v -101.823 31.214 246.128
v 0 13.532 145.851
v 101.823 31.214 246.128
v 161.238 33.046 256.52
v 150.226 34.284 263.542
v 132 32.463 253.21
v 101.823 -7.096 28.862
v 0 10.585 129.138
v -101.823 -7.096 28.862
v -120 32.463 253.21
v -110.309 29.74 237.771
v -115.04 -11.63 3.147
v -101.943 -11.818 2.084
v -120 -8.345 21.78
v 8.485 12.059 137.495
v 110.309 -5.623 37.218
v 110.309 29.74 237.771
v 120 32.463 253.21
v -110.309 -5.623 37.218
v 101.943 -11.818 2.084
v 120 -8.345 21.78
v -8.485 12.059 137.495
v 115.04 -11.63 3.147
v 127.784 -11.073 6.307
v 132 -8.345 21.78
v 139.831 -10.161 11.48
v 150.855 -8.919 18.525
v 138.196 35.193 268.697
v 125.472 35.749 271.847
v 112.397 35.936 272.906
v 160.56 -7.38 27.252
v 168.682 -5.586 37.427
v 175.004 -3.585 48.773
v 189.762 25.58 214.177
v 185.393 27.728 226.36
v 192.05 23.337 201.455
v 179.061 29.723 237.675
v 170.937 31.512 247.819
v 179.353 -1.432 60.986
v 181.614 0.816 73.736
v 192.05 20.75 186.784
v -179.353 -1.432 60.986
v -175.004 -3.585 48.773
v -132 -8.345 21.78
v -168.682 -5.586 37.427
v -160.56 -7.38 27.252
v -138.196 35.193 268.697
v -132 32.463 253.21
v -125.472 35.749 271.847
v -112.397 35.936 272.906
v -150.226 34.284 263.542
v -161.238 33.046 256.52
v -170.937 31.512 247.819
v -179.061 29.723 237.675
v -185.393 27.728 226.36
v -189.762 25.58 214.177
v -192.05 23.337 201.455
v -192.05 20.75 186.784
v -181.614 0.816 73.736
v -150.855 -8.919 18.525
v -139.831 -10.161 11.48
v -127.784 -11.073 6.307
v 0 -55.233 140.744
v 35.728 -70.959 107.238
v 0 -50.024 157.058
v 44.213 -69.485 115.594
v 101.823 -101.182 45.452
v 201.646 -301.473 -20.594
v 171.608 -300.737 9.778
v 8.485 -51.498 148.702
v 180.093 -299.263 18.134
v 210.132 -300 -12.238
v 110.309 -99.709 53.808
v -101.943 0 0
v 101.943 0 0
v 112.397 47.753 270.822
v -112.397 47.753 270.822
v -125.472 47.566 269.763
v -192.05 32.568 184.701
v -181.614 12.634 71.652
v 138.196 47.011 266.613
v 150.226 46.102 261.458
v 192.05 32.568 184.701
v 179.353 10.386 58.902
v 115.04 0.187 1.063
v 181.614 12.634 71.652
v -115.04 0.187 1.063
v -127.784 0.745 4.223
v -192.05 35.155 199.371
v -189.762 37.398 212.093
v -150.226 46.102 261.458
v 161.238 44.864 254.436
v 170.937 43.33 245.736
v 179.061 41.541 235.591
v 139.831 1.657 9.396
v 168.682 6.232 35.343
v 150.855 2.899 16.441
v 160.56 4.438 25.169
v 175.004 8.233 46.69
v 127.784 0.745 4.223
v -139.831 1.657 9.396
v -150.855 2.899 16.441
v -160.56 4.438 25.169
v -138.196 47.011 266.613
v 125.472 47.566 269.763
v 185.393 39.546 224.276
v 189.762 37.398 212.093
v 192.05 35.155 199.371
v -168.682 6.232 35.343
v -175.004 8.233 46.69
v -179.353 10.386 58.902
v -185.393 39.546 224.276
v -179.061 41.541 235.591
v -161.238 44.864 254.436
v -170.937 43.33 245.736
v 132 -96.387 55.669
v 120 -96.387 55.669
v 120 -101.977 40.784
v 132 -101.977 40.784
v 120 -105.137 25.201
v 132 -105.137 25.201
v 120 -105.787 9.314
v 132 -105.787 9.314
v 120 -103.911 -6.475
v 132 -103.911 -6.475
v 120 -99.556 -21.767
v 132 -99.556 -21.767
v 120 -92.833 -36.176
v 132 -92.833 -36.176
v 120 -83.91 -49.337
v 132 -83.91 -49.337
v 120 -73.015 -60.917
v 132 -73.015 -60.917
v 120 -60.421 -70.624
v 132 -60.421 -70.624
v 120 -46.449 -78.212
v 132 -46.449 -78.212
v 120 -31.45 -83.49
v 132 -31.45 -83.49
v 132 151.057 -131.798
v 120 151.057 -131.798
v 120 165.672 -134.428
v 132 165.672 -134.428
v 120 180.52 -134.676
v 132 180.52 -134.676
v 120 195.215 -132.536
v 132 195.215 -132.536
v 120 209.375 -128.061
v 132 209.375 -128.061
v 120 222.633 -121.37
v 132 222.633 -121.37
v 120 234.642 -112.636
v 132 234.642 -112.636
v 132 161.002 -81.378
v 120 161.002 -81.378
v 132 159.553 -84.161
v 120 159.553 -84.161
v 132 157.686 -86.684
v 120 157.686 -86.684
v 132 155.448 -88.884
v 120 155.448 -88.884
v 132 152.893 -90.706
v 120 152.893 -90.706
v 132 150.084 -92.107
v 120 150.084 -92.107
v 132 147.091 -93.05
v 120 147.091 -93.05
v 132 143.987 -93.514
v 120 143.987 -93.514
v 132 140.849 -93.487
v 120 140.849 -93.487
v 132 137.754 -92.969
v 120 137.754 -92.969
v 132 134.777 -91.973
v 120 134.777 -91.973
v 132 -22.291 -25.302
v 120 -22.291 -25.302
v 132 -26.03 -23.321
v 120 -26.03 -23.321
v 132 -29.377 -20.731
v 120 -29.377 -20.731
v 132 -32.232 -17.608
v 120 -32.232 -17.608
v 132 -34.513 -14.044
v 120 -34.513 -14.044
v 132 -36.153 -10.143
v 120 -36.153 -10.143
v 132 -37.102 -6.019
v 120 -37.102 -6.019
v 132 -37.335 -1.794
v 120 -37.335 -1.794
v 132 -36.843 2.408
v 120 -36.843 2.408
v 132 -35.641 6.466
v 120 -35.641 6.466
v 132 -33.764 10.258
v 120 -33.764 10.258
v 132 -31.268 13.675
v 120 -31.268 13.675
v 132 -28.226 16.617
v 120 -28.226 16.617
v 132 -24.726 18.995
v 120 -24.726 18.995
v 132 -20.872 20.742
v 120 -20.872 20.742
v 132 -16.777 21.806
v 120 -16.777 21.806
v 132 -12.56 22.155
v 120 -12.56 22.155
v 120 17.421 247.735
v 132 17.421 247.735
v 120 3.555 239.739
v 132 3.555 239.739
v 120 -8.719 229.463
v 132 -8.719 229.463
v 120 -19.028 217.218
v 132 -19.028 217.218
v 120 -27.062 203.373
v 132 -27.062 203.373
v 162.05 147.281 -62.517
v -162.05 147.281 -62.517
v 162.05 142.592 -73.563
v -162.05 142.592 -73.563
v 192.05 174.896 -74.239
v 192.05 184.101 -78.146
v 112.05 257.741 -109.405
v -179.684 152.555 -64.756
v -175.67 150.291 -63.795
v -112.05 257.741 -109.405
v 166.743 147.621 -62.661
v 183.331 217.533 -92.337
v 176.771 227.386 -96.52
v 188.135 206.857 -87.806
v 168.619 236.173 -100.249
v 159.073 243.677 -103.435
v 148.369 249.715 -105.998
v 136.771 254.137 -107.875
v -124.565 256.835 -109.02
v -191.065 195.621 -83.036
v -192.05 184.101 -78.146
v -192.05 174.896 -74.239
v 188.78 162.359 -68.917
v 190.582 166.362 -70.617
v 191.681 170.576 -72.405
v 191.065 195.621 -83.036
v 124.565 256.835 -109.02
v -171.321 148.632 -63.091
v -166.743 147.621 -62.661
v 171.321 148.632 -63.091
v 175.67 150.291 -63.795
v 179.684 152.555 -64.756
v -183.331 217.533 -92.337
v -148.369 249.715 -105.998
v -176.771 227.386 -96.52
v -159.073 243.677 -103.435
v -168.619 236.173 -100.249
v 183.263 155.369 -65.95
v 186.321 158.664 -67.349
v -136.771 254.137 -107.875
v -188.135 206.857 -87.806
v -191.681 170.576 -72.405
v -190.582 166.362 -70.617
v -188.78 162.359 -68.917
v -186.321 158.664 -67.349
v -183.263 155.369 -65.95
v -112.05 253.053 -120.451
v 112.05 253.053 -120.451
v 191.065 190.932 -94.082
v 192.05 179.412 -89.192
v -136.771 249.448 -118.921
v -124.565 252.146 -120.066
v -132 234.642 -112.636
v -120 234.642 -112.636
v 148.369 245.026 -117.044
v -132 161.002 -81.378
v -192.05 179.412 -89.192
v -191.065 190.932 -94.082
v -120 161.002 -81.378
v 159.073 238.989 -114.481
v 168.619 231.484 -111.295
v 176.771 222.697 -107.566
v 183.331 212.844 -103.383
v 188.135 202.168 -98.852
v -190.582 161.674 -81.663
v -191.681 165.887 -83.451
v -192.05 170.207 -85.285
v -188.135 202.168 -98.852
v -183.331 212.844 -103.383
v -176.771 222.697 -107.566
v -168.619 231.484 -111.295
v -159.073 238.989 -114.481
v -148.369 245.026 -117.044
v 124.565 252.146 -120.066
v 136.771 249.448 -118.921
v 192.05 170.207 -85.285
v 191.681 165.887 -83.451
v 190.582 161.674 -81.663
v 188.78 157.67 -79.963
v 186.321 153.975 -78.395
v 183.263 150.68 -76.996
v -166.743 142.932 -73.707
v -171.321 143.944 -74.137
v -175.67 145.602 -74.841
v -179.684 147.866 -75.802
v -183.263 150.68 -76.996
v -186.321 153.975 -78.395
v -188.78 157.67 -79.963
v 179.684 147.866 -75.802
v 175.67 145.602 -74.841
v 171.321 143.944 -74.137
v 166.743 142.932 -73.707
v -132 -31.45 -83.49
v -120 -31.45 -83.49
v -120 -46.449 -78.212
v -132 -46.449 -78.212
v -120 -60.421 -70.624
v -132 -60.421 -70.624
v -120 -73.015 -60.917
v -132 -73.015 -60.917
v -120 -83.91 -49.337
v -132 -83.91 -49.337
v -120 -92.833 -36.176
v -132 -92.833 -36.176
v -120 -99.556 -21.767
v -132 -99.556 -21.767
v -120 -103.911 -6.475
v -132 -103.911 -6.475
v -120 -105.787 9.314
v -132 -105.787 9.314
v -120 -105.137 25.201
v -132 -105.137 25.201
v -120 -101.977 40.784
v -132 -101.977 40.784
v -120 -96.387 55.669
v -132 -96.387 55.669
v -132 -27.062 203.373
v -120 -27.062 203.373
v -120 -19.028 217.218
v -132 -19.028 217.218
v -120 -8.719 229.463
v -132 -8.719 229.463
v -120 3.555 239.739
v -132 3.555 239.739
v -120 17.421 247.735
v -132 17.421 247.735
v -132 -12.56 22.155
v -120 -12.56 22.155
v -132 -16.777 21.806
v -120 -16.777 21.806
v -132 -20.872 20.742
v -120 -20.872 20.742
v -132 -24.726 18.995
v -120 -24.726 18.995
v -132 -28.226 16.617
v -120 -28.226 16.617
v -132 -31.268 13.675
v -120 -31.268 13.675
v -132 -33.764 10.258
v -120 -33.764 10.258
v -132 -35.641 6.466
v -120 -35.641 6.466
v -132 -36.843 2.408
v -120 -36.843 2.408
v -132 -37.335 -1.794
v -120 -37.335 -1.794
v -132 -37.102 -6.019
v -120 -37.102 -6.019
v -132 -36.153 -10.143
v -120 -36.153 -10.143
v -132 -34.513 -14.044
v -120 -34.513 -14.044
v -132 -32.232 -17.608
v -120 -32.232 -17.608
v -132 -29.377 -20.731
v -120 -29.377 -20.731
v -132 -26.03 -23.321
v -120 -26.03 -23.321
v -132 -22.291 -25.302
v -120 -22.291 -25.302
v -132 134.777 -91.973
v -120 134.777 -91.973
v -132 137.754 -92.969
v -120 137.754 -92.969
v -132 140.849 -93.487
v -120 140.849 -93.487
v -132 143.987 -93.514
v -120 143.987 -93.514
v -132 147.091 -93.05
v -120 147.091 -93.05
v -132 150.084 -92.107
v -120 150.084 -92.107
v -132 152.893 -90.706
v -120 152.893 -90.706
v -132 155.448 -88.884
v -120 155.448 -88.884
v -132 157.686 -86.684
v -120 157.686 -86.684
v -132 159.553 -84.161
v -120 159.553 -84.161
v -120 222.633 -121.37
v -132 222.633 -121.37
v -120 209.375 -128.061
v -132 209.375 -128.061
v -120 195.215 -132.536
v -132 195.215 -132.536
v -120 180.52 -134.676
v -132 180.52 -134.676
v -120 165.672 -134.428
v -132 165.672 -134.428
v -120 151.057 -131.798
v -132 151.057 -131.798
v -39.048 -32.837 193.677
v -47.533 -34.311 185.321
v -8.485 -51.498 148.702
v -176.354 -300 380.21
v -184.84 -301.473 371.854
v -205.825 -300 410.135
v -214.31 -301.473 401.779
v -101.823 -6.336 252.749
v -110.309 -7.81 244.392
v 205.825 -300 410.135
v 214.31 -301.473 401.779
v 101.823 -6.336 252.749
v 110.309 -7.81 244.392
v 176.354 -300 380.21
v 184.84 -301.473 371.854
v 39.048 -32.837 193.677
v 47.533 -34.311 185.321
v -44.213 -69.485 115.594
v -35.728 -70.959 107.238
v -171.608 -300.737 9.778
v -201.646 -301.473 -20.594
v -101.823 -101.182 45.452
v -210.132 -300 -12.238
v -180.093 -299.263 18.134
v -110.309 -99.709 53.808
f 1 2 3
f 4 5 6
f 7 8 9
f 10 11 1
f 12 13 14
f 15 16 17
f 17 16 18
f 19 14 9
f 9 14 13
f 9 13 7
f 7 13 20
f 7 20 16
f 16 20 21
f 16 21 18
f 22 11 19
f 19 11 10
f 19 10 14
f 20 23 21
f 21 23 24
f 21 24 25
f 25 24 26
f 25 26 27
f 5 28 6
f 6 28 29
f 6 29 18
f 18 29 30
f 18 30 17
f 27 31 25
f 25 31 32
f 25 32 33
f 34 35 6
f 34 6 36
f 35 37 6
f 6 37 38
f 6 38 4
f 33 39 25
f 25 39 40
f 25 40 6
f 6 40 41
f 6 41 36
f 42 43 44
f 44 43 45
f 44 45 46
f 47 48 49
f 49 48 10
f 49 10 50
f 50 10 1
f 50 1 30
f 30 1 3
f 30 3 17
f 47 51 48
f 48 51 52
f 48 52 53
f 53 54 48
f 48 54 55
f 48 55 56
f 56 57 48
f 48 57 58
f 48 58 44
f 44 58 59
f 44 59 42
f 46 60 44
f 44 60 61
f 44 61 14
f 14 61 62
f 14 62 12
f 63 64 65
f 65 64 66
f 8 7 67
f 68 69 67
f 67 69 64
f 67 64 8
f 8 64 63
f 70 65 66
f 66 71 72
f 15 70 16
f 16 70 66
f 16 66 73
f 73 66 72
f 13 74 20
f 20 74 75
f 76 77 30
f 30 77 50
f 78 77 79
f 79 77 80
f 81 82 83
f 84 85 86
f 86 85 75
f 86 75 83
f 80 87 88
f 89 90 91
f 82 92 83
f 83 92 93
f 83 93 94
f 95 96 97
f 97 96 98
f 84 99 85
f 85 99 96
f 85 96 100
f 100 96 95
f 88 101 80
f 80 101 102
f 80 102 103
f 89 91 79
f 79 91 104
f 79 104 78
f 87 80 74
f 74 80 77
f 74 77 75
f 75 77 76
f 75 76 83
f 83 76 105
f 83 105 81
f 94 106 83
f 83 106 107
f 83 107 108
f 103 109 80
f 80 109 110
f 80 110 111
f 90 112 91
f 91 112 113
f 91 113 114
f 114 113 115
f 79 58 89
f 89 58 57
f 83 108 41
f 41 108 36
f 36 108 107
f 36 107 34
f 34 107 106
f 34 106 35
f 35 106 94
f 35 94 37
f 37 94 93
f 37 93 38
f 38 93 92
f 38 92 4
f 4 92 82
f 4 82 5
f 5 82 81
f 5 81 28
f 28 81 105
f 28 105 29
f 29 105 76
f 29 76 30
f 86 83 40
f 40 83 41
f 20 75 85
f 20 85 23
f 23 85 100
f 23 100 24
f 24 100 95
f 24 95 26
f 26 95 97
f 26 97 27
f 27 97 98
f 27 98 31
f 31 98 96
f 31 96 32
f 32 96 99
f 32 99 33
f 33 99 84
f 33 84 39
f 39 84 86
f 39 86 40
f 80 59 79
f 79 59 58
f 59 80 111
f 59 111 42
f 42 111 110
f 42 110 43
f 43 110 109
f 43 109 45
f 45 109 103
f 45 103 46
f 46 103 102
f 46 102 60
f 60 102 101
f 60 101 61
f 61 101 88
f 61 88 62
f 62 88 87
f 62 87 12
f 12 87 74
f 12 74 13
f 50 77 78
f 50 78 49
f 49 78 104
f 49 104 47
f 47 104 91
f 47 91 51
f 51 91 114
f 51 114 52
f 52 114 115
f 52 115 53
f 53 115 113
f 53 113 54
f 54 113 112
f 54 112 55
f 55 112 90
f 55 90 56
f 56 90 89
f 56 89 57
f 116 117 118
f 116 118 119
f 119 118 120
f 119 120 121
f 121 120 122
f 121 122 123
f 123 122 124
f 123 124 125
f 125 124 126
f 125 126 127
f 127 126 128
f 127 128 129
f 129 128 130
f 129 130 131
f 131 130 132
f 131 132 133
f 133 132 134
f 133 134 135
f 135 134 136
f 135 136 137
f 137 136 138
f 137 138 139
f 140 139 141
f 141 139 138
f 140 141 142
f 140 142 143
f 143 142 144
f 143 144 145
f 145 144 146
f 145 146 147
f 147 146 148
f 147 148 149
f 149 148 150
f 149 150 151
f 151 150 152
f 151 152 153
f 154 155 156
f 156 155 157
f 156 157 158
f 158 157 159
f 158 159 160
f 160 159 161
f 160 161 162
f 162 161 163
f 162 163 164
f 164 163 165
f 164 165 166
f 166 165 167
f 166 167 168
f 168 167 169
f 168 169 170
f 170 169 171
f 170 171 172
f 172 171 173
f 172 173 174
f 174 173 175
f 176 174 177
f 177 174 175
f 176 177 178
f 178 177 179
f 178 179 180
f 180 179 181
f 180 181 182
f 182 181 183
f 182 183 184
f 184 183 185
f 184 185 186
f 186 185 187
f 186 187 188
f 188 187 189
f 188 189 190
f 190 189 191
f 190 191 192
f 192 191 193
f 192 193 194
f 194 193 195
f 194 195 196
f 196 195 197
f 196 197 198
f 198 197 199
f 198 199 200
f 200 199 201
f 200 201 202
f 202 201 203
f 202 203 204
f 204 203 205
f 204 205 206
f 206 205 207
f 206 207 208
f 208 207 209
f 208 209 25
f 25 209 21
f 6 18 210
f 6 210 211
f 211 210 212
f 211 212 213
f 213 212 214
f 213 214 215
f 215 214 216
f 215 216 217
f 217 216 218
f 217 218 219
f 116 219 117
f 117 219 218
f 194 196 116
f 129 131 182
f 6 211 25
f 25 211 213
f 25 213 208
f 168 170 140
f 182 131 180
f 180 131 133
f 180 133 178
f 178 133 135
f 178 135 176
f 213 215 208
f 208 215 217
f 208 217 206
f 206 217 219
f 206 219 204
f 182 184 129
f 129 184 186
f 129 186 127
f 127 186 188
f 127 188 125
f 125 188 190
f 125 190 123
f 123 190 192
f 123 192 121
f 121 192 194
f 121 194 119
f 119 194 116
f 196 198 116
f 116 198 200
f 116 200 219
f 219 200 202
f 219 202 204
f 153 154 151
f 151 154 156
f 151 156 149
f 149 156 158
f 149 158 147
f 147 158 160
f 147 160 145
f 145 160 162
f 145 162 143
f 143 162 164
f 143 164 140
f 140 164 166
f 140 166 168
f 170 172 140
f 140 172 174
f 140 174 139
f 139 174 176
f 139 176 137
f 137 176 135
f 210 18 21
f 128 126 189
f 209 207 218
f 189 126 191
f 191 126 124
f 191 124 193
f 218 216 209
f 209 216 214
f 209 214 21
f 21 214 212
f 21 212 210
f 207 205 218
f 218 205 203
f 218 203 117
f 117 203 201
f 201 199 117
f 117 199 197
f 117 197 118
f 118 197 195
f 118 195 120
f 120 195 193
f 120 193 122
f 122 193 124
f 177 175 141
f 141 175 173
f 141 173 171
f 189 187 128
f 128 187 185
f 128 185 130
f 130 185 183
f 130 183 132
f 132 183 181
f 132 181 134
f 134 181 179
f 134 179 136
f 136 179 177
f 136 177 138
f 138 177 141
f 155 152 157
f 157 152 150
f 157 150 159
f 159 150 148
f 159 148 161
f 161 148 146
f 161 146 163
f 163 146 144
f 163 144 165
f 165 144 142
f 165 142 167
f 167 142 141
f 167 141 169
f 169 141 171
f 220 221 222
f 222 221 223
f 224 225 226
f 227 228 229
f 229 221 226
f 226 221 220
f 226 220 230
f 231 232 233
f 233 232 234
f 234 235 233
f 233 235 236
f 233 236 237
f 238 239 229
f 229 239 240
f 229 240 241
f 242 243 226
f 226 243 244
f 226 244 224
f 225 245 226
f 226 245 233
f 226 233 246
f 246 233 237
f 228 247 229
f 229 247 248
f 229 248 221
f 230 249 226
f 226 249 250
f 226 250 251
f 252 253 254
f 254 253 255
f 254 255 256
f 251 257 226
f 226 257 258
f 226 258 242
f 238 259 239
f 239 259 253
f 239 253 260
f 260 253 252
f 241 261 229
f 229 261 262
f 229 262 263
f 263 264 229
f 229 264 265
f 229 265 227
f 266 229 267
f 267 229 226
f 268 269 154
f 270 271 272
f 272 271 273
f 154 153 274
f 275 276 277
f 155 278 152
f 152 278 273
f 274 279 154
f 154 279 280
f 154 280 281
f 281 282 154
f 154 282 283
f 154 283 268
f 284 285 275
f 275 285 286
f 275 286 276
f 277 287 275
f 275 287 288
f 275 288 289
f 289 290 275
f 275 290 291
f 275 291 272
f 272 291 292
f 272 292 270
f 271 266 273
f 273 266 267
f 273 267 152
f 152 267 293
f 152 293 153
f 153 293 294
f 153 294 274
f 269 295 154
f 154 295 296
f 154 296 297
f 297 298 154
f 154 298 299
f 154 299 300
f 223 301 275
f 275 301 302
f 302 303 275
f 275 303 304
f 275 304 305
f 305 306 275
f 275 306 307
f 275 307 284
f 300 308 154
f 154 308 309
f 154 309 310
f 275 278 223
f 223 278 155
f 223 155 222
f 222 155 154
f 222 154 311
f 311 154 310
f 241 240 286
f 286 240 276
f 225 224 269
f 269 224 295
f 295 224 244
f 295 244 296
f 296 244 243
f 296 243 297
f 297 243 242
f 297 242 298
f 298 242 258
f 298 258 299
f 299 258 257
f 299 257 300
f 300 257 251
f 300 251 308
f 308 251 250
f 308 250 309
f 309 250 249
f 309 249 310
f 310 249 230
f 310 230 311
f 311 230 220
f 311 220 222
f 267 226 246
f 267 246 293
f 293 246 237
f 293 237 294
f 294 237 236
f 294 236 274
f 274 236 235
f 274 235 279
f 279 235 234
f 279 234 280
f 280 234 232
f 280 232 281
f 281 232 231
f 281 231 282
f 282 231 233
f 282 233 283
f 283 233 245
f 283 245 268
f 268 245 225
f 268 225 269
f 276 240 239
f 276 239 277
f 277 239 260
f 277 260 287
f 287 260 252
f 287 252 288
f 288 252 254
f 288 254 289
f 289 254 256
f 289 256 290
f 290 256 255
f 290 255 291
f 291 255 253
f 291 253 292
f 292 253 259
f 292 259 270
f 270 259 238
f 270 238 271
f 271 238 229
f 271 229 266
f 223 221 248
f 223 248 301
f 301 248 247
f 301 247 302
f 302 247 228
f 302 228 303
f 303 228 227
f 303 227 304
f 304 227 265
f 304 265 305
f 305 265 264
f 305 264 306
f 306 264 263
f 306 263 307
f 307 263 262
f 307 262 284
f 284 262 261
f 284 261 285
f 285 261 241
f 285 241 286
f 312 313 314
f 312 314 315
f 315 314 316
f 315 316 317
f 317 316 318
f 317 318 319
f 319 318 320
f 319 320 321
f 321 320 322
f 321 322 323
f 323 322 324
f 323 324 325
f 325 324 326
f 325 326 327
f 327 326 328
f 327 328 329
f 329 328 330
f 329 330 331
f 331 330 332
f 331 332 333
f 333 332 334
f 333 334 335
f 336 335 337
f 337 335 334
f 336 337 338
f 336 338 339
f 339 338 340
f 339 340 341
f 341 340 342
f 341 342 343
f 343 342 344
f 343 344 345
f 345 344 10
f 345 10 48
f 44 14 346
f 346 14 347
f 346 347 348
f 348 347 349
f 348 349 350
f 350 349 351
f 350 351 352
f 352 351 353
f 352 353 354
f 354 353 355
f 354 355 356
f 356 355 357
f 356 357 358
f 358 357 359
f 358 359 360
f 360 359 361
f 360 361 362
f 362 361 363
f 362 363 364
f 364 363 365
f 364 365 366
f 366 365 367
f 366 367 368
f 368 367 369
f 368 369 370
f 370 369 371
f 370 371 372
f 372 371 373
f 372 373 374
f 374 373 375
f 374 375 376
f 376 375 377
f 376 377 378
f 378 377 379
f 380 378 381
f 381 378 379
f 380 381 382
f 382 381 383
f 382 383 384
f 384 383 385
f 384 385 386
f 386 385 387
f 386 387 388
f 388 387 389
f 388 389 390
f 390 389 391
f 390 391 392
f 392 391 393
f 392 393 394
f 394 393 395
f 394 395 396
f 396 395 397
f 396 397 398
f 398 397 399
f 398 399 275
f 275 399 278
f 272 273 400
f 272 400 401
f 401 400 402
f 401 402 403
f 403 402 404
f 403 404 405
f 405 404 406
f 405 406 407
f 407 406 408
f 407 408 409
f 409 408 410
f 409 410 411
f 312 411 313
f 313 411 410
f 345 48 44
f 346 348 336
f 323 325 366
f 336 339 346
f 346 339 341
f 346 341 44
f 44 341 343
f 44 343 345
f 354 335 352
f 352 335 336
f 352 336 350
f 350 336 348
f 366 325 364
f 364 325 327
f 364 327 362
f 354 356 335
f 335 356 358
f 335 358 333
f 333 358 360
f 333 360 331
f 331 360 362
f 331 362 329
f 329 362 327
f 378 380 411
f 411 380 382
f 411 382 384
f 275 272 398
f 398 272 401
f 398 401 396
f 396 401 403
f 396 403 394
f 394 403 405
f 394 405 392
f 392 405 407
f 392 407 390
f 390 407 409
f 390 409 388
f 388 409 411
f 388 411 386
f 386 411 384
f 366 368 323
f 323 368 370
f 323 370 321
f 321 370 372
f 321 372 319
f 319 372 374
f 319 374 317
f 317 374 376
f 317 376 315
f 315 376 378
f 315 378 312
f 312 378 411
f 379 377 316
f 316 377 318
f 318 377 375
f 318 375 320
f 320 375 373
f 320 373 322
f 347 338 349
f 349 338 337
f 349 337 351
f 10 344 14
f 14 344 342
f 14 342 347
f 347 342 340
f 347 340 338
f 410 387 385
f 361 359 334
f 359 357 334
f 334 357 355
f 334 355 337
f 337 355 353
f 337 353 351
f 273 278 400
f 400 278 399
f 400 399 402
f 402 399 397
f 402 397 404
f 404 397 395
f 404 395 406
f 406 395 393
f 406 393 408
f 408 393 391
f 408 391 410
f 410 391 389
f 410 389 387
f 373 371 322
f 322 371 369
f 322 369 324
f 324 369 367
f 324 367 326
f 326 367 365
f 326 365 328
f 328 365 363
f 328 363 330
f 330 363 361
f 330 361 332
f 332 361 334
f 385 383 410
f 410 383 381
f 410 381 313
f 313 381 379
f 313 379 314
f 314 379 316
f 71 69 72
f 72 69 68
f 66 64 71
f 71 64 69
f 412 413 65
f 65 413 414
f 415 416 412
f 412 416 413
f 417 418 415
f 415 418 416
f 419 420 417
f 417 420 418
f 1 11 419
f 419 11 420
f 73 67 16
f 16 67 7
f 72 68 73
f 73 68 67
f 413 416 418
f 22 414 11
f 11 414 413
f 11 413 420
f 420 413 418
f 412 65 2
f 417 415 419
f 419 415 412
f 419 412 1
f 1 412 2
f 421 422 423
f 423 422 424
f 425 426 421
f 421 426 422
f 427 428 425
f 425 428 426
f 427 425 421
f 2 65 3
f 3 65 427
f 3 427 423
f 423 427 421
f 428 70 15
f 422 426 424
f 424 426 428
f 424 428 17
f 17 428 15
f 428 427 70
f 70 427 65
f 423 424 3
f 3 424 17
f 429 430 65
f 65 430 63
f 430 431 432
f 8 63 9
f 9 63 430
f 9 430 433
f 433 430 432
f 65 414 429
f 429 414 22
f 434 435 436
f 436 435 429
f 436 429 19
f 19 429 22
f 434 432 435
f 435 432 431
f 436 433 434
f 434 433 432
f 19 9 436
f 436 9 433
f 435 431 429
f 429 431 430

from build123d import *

# Parameters (mm, degrees)
BOSS_EXTRUDE1_DEPTH        = 192.05
BOSS_EXTRUDE1_DEPTH_BACK   = 192.05
BOSS_EXTRUDE1_2_DEPTH      = 192.05
BOSS_EXTRUDE1_2_DEPTH_BACK = 192.05
SKETCH3_OUTSIDE_W          = 508.562
SKETCH3_OUTSIDE_H          = 558.651
CUT_EXTRUDE1_DEPTH         = 12
SKETCH4_OUTSIDE_W          = 508.562
SKETCH4_OUTSIDE_H          = 526.289
CUT_EXTRUDE2_DEPTH         = 12
BOSS_EXTRUDE4_START        = 120
BOSS_EXTRUDE4_DEPTH        = 12
BOSS_EXTRUDE10_DEPTH       = 6


with BuildPart() as part:
    # Sketch2 → Boss-Extrude1 (new, two sides: drawn at the far end of the back side and taken through both)
    with BuildSketch(Plane(origin=(0, 0, 0), x_dir=(0, 0, -1), z_dir=(1, 0, 0)).offset(-BOSS_EXTRUDE1_DEPTH_BACK)):
        Polygon((0, 0), (-270.822132078, 47.753248858), (-272.90591021, 35.935555822), (-2.083778132, -11.817693036), align=None)
    extrude(amount=BOSS_EXTRUDE1_DEPTH + BOSS_EXTRUDE1_DEPTH_BACK)

    # Sketch3 outside → Cut-Extrude1 (cut)
    with BuildSketch(Plane(origin=(0, 0, 0), x_dir=(1, 0, 0), z_dir=(0, 0.9848077530122092, -0.17364817766692398))):
        with Locations((0, -96.4215)):
            Rectangle(SKETCH3_OUTSIDE_W, SKETCH3_OUTSIDE_H)
        with BuildLine():
            Line((0, -275), (112.39737442, -275))
            ThreePointArc((112.39737442, -275), (171.471178999, -248.947063059), (192.068830938, -187.757140317))
            Line((192.068830938, -187.757140317), (181.614285483, -72.757140317))
            ThreePointArc((181.614285483, -72.757140317), (155.889892025, -20.926195422), (101.942828966, 0))
            Line((101.942828966, 0), (-101.942828966, 0))
            ThreePointArc((-101.942828966, 0), (-155.889892025, -20.926195422), (-181.614285483, -72.757140317))
            Line((-181.614285483, -72.757140317), (-192.068830938, -187.757140317))
            ThreePointArc((-192.068830938, -187.757140317), (-171.471178999, -248.947063059), (-112.39737442, -275))
            Line((-112.39737442, -275), (0, -275))
        make_face(mode=Mode.SUBTRACT)
    extrude(amount=-CUT_EXTRUDE1_DEPTH, mode=Mode.SUBTRACT)



with BuildPart() as body_2:
    # Sketch2 → Boss-Extrude1 2 (new, two sides: drawn at the far end of the back side and taken through both)
    with BuildSketch(Plane(origin=(0, 0, 0), x_dir=(0, 0, -1), z_dir=(1, 0, 0)).offset(-BOSS_EXTRUDE1_2_DEPTH_BACK)):
        Polygon((109.404715977, 257.741358967), (62.516980558, 147.280776552), (73.5630388, 142.592003011), (120.450774218, 253.052585425), align=None)
    extrude(amount=BOSS_EXTRUDE1_2_DEPTH + BOSS_EXTRUDE1_2_DEPTH_BACK)

    # Sketch4 outside → Cut-Extrude2 (cut)
    with BuildSketch(Plane(origin=(0, 0, 0), x_dir=(1, 0, 0), z_dir=(0, 0.39073112848927083, 0.9205048534524416))):
        with Locations((0, 83.4025)):
            Rectangle(SKETCH4_OUTSIDE_W, SKETCH4_OUTSIDE_H)
        with BuildLine():
            Line((-112.05, 280), (112.05, 280))
            ThreePointArc((112.05, 280), (168.618542495, 256.568542495), (192.05, 200))
            Line((192.05, 200), (192.05, 190))
            ThreePointArc((192.05, 190), (183.263203436, 168.786796564), (162.05, 160))
            Line((162.05, 160), (-162.05, 160))
            ThreePointArc((-162.05, 160), (-183.263203436, 168.786796564), (-192.05, 190))
            Line((-192.05, 190), (-192.05, 200))
            ThreePointArc((-192.05, 200), (-168.618542495, 256.568542495), (-112.05, 280))
        make_face(mode=Mode.SUBTRACT)
    extrude(amount=-CUT_EXTRUDE2_DEPTH, mode=Mode.SUBTRACT)


with BuildPart() as part_1:
    add(part.part)

    add(body_2.part)  # Boss-Extrude4 merges body 2
    # Sketch6 → Boss-Extrude4 (add)
    with BuildSketch(Plane(origin=(0, 0, 0), x_dir=(0, 0, -1), z_dir=(1, 0, 0)).offset(BOSS_EXTRUDE4_START)):
        with BuildLine():
            Line((-253.20975515, 32.462592269), (-137.494844171, 12.058931393))
            Line((-137.494844171, 12.058931393), (-21.779933192, -8.344729483))
            ThreePointArc((-21.779933192, -8.344729483), (-4.462889813, -36.328759752), (25.301600034, -22.290914988))
            Line((25.301600034, -22.290914988), (91.973135869, 134.777380441))
            ThreePointArc((91.973135869, 134.777380441), (92.106715891, 150.084134879), (81.377661369, 161.00210008))
            Line((81.377661369, 161.00210008), (112.636151649, 234.642488356))
            ThreePointArc((112.636151649, 234.642488356), (132.535530375, 195.215307548), (131.79795497, 151.057139078))
            Line((131.79795497, 151.057139078), (83.48988024, -31.450025326))
            ThreePointArc((83.48988024, -31.450025326), (29.105608653, -96.481302081), (-55.668839629, -96.387117006))
            Line((-55.668839629, -96.387117006), (-203.373392469, -27.062109534))
            ThreePointArc((-203.373392469, -27.062109534), (-234.867841078, -2.805661741), (-253.20975515, 32.462592269))
        make_face()
    boss_extrude4 = extrude(amount=BOSS_EXTRUDE4_DEPTH)

    # Mirror1: Boss-Extrude4 across plane
    add(boss_extrude4.mirror(Plane(origin=(0, 0, 0), x_dir=(0, 0, 1), z_dir=(1, 0, 0))))

    # Sketch27 → Boss-Extrude10 (add, symmetric)
    with BuildSketch(Plane(origin=(68.75, 11.938312215, 67.70553302), x_dir=(0.7071067811865476, -0.12278780396896828, -0.6963642403200198), z_dir=(0.7071067811865476, 0.12278780396896825, 0.6963642403200198))):
        Polygon((52.772817594, -107.537852274), (193.944024949, -293.317225843), (151.463217587, -297.865726007), (-40.700349563, -88.502554793), (-158.448989832, -65.970042163), (-352.630009772, -361.465171741), (-394.307309716, -366.661581013), (-247.22718241, -50.129513852), (-247.22718241, -12.000000012), (52.772817594, -12.000000012), align=None)
    boss_extrude10 = extrude(amount=BOSS_EXTRUDE10_DEPTH, both=True)

    # Mirror3: Boss-Extrude10 across plane
    add(boss_extrude10.mirror(Plane(origin=(0, 0, 0), x_dir=(0, 0, 1), z_dir=(1, 0, 0))))


solid = part_1.part
